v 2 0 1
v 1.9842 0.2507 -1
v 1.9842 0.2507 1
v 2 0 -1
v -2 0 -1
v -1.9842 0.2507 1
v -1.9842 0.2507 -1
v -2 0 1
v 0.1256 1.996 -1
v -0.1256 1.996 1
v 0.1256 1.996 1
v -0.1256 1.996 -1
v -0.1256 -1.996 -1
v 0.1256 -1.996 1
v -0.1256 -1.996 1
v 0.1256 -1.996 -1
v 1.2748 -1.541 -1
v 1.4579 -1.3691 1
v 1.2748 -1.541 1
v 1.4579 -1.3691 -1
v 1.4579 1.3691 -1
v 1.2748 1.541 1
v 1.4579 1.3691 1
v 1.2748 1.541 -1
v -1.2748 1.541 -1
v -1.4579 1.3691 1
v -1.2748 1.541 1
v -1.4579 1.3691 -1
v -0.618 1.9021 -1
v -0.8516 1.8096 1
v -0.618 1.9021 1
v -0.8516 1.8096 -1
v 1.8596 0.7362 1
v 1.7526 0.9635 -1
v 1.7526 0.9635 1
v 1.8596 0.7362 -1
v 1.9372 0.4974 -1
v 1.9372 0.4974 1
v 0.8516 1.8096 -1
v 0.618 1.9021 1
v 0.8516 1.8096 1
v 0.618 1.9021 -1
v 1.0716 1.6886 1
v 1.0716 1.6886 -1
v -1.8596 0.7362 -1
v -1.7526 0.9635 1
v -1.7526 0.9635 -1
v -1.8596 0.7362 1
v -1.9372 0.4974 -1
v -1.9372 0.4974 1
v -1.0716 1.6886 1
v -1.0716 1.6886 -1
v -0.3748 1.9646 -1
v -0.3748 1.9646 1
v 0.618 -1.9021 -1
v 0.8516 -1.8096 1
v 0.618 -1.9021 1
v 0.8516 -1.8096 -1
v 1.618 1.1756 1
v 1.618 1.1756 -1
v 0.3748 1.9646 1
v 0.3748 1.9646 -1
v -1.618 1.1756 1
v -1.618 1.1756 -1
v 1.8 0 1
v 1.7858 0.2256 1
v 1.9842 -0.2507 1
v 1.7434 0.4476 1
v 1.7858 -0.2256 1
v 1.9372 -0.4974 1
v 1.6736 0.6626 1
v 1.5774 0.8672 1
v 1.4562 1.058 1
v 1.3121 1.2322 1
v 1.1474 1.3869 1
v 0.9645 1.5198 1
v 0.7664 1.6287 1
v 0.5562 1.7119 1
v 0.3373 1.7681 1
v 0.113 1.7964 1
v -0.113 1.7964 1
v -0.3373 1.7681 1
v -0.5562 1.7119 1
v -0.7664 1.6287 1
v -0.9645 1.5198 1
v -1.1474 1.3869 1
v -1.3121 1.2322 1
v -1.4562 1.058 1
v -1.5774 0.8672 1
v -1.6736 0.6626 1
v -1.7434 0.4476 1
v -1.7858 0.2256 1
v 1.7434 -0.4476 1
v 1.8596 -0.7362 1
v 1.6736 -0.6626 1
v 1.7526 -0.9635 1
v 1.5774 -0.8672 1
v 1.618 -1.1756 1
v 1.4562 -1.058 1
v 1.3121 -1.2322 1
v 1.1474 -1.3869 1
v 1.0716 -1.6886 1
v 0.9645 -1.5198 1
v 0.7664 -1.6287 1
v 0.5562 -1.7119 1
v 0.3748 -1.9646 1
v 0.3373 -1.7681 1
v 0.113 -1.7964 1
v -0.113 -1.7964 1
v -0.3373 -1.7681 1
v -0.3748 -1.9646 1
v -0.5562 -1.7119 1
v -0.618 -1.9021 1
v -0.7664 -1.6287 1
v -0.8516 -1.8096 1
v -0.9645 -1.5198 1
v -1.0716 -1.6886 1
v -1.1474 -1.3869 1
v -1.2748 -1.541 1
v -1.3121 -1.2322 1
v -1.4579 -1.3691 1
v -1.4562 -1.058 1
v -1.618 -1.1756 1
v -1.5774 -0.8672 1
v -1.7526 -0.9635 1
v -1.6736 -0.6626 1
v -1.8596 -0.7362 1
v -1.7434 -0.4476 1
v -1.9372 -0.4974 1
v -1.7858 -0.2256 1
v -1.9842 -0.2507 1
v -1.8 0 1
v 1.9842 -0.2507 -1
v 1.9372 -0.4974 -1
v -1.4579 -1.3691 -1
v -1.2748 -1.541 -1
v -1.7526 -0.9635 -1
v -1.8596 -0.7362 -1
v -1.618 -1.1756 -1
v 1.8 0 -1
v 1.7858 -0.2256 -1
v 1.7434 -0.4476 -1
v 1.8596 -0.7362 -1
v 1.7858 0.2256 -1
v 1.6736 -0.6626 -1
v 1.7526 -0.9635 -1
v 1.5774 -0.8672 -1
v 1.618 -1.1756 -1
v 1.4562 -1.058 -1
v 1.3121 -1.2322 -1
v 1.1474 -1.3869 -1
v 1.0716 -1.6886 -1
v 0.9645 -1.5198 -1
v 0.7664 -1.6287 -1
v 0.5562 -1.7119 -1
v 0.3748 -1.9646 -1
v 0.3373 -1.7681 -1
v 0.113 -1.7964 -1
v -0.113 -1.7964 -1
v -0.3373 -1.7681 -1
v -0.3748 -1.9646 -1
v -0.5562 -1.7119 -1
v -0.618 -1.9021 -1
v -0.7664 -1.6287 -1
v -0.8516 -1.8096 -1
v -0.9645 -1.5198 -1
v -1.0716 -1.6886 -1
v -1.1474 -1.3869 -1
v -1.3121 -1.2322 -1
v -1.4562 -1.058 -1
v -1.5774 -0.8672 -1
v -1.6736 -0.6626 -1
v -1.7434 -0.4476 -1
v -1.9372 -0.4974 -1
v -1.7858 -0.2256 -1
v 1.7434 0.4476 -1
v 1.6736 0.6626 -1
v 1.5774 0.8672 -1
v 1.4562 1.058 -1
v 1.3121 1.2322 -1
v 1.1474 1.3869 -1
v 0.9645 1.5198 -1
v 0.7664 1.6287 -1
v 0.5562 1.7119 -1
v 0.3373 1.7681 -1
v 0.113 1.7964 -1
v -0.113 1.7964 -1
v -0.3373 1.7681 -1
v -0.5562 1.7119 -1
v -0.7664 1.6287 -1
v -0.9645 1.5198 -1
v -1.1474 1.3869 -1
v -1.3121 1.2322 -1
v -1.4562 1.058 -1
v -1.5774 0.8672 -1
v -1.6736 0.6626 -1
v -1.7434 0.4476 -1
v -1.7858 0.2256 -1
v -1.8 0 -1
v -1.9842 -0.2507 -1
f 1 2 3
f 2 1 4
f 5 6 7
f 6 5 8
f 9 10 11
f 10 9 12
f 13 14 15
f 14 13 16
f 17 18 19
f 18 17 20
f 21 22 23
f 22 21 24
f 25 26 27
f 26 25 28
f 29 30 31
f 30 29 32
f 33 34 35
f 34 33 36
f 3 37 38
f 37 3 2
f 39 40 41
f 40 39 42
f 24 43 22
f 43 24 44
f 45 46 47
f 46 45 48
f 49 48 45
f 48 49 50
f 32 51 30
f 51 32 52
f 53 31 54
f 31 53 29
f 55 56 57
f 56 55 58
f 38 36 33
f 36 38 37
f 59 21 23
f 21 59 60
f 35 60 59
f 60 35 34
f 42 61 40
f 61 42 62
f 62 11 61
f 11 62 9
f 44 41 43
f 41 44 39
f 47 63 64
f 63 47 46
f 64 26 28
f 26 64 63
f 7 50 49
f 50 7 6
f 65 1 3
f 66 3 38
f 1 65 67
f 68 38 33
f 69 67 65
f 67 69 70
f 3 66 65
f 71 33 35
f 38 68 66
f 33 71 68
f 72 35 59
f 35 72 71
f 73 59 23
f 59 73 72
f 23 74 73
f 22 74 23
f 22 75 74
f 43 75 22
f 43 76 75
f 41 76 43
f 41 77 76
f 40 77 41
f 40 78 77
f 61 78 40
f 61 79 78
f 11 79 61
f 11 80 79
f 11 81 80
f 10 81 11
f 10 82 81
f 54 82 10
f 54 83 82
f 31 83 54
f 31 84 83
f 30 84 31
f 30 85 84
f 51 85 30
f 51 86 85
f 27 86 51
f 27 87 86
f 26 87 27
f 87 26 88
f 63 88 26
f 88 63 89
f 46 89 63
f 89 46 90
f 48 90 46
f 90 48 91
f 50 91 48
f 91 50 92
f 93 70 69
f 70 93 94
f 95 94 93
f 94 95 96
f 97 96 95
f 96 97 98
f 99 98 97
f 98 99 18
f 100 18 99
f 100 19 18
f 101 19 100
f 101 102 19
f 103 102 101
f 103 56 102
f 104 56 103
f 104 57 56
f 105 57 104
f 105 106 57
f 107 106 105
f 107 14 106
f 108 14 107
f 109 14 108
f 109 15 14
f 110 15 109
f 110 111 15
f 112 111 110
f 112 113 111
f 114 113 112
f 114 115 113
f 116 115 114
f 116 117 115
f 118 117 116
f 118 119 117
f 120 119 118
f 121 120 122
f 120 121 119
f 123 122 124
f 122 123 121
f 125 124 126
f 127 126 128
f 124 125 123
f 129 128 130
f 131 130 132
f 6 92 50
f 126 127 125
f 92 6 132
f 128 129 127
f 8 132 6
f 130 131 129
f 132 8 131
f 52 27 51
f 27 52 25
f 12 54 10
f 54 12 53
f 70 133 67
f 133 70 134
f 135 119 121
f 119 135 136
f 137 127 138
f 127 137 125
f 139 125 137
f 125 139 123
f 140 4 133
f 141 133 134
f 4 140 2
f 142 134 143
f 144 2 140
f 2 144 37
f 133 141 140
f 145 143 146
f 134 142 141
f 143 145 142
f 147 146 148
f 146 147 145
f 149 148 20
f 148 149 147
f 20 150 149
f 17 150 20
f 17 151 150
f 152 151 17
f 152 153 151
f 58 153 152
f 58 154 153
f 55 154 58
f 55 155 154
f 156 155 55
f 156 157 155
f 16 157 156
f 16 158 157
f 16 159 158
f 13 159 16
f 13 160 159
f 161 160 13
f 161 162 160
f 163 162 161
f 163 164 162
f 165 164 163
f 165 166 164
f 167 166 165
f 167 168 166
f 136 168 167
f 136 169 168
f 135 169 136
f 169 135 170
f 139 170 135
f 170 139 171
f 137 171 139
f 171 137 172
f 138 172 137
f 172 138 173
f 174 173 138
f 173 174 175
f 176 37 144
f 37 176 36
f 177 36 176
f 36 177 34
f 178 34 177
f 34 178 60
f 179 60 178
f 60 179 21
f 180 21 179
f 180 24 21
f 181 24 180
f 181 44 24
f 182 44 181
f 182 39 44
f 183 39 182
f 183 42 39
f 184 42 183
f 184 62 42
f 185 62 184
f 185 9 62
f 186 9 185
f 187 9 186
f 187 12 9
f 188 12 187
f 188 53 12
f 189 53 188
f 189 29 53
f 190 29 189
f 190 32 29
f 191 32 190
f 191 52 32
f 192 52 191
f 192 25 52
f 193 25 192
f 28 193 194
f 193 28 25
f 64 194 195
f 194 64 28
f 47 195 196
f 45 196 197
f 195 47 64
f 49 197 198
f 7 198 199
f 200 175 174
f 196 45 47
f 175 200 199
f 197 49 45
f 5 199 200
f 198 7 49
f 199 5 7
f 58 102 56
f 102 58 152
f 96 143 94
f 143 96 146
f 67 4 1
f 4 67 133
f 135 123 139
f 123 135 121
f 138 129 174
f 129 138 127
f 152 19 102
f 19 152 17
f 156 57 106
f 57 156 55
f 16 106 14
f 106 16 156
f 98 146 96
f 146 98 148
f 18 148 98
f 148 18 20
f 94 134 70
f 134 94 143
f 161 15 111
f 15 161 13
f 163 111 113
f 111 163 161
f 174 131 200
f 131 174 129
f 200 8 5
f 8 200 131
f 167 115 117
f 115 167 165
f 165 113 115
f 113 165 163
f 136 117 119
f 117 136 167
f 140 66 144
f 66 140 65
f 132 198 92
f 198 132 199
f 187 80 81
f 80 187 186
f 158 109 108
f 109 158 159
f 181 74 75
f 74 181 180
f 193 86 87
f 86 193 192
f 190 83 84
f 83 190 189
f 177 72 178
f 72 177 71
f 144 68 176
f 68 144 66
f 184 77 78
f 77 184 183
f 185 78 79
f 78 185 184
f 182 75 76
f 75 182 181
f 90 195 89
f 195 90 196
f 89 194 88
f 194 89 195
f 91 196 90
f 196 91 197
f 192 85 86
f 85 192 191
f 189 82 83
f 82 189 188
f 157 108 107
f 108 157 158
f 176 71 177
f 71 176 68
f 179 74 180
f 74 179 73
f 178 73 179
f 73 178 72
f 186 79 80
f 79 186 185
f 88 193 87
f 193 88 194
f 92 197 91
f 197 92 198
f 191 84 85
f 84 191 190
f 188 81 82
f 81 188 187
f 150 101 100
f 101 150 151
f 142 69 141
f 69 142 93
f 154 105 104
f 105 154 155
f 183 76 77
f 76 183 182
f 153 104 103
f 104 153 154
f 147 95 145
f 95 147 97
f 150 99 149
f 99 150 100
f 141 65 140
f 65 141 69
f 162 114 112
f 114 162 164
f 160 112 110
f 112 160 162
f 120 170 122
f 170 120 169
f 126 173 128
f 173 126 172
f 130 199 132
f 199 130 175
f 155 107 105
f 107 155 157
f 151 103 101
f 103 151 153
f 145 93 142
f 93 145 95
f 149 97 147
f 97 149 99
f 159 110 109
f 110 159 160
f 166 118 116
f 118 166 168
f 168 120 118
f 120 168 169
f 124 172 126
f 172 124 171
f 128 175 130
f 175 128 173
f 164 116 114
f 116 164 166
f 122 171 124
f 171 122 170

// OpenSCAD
$fn = 50;


difference() {
	union() {
		translate(v = [0, 0, -1.0000000000]) {
			cylinder(h = 2, r = 2.0000000000);
		}
	}
	union() {
		translate(v = [0, 0, -100.0000000000]) {
			cylinder(h = 200, r = 1.8000000000);
		}
	}
}
